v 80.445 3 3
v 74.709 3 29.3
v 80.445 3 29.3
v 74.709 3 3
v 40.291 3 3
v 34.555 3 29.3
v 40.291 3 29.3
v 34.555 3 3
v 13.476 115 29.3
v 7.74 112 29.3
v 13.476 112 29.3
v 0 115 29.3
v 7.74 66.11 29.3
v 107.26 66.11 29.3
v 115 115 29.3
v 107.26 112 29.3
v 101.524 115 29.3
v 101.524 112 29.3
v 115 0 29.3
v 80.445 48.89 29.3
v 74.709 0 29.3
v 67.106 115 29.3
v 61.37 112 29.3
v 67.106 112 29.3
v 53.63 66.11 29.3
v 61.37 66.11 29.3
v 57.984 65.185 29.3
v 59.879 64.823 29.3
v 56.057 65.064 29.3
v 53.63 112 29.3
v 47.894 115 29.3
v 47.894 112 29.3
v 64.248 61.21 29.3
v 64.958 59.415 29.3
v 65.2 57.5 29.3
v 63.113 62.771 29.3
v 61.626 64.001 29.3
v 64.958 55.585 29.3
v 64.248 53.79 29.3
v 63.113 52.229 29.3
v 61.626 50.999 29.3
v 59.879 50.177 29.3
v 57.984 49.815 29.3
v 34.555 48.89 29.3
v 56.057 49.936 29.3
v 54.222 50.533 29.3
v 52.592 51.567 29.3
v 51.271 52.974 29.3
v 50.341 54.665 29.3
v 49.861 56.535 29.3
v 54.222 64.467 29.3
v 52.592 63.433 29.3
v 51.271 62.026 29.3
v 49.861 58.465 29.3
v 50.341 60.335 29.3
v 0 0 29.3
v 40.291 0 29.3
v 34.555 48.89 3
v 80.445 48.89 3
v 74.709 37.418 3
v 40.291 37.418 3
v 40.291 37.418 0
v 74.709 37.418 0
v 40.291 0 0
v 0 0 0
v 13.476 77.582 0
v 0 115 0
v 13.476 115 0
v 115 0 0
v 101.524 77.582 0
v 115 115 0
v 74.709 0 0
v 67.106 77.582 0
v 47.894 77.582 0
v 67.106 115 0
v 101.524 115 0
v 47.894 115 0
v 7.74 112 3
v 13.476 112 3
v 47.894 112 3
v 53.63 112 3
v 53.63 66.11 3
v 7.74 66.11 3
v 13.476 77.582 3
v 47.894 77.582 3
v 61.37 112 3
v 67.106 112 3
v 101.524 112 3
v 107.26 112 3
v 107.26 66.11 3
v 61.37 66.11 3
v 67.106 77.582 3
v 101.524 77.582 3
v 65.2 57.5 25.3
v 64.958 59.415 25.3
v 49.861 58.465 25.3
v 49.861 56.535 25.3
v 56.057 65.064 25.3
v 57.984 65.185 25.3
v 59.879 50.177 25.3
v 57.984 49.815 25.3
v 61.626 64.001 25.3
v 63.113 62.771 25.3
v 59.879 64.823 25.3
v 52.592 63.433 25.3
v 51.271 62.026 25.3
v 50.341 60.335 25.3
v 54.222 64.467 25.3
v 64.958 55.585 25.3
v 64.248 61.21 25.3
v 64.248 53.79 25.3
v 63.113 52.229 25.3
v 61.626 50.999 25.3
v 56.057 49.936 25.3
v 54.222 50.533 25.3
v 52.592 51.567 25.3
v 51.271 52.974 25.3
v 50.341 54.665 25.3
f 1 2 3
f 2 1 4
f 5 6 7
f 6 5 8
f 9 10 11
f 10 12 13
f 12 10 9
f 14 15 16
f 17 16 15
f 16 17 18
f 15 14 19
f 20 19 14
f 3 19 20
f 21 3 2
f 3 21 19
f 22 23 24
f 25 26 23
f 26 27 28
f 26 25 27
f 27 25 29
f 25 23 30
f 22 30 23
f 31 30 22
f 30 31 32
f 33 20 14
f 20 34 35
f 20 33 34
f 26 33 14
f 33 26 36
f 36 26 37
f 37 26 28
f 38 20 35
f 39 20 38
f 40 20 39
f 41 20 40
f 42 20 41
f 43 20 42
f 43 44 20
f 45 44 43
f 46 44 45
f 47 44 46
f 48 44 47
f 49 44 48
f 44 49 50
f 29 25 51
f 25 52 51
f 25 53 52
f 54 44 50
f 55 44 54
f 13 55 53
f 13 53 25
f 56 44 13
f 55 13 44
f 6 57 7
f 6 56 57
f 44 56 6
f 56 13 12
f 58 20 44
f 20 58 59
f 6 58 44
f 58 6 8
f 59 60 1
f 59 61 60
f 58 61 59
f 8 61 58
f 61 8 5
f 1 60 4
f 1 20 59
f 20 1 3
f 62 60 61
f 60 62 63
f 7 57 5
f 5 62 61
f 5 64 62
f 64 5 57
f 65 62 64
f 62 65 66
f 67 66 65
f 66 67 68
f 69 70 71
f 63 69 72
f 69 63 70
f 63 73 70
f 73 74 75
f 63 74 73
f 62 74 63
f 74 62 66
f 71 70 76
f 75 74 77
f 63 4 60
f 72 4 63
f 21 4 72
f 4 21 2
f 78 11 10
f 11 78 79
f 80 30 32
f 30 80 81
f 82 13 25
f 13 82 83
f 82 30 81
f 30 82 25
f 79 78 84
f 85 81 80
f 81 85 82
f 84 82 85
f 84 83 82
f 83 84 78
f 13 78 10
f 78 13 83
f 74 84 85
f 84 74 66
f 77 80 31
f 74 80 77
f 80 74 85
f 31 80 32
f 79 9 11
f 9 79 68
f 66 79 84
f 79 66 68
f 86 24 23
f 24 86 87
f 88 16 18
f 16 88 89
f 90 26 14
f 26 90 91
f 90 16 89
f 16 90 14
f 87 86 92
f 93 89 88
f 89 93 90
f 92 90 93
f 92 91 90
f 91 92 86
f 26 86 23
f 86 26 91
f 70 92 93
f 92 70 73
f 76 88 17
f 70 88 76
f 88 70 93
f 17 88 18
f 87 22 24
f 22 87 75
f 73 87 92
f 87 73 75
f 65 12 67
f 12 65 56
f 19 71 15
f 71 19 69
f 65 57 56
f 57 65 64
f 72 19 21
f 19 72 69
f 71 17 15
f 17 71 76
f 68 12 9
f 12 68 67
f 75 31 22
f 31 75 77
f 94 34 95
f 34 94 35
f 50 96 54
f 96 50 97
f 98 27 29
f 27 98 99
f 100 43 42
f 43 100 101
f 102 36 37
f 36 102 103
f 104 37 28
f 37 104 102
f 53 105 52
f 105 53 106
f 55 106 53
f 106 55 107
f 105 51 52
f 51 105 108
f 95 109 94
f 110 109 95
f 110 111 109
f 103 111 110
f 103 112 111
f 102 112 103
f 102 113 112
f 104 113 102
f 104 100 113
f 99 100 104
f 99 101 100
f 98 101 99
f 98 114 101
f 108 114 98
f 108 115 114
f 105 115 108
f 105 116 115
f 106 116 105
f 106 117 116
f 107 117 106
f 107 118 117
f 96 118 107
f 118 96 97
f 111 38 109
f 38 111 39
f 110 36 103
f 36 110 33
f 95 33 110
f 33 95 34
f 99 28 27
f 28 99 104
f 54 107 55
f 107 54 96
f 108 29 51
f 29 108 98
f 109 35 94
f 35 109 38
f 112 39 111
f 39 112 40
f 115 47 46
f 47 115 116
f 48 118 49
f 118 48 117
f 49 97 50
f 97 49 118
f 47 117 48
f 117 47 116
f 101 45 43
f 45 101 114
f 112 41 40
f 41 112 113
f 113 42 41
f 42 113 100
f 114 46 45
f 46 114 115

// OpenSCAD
// file: SquarePileLib.scad
module LeftPile(wallThickness, totalHeight, singlePileHeight, singlePileWidth, singlePileLength, pileCount){
//    15.05 by 14.95 by 2.15
    pileHeight = (pileCount * singlePileHeight) + .5;
    openingSize = singlePileWidth * .75;
    blockerSize = (singlePileLength - openingSize) / 2;
    
    translate([wallThickness, wallThickness, totalHeight - pileHeight])
        cube([singlePileLength, singlePileWidth, pileHeight]);
    translate([-.00001, wallThickness + (blockerSize), 0])
        cube([wallThickness + openingSize, openingSize, totalHeight]);
}

module RightPile(wallThickness, totalHeight, singlePileHeight, singlePileWidth, singlePileLength, pileCount){
    translate([0, wallThickness + wallThickness + singlePileWidth, 0])
        rotate([0, 0, 180])
            LeftPile(wallThickness, totalHeight, singlePileHeight, singlePileWidth, singlePileLength, pileCount);
}

module BottomPile(wallThickness, totalHeight, singlePileHeight, singlePileWidth, singlePileLength, pileCount){
    translate([wallThickness + wallThickness + singlePileWidth, 0, 0])
        rotate([0, 0, 90])
            LeftPile(wallThickness, totalHeight, singlePileHeight, singlePileWidth, singlePileLength, pileCount);
}

module TopPile(wallThickness, totalHeight, singlePileHeight, singlePileWidth, singlePileLength, pileCount){
//    translate([
//        wallThickness + wallThickness + singlePileWidth,
//        wallThickness + wallThickness + singlePileWidth,
//        0])
        rotate([0, 0, 270])
            LeftPile(wallThickness, totalHeight, singlePileHeight, singlePileWidth, singlePileLength, pileCount);
}
// file: CoreLib.scad
function whiteSpaceBetweenBoxes(side, numberOfBoxes, boxLength) =
    (side - (numberOfBoxes * boxLength)) / (numberOfBoxes + 1);
    
function getOffsetForWhiteSpace(whiteSpaceBetweenBoxes, index, boxLength, singleBoxOffset) =
    ((index + 1) * whiteSpaceBetweenBoxes + boxLength * (index)) + singleBoxOffset;
// file: ColonistsStorageFacilityLib.scad
include<SquarePileLib.scad>
//25.82 by 32.82 by 2.15
singleStorageFacilityPileHeight = 2.15;
singleStorageFacilityPileWidth = 45.19 + .7;
singleStorageFacilityPileLength = 45.19 + .7;

module LeftStorageFacilityPile(wallThickness, totalHeight, storageFacilityPileCount){
    LeftPile(
        wallThickness,
        totalHeight,
        singleStorageFacilityPileHeight,
        singleStorageFacilityPileWidth,
        singleStorageFacilityPileLength,
        storageFacilityPileCount);
}

module RightStorageFacilityPile(wallThickness, totalHeight, storageFacilityPileCount){
    RightPile(
        wallThickness,
        totalHeight,
        singleStorageFacilityPileHeight,
        singleStorageFacilityPileWidth,
        singleStorageFacilityPileLength,
        storageFacilityPileCount);
}

module BottomStorageFacilityPile(wallThickness, totalHeight, storageFacilityPileCount){
    BottomPile(
        wallThickness,
        totalHeight,
        singleStorageFacilityPileHeight,
        singleStorageFacilityPileWidth,
        singleStorageFacilityPileLength,
        storageFacilityPileCount);
}

module TopStorageFacilityPile(wallThickness, totalHeight, storageFacilityPileCount){
    TopPile(
        wallThickness,
        totalHeight,
        singleStorageFacilityPileHeight,
        singleStorageFacilityPileWidth,
        singleStorageFacilityPileLength,
        storageFacilityPileCount);
}

function storageFacilityPileHeight(storageFacilityPileCount) =
    (storageFacilityPileCount * singleStorageFacilityPileHeight) + .5;
// main file
include<ColonistsStorageFacilityLib.scad>
include<CoreLib.scad>
magnetBaseInnerDiameter = 15.4;
magnetHeight = 4.0;
floorThickness = 3;
wallThickness = 3;
maxStorageFacilitysPerStack = 12;
height = storageFacilityPileHeight(maxStorageFacilitysPerStack) + floorThickness;
length = 115;
width = 115;
numberOfTopBoxes = 2;
topBoxStorageFacilitysPerStack = [12, 12];
numberOfBottomBoxes = 1;
bottomBoxStorageFacilitysPerStack = [12];
numberOfLeftBoxes = 0;
leftBoxStorageFacilitysPerStack = [];
numberOfRightBoxes = 0;
rightBoxStorageFacilitysPerStack = [];

difference() {

//    whitespace between boxes = (total length - (# of boxes * width of boxes)) / (# of boxes + 1)
//    position of box n = whitespace * n + 1 + width of box * (n)
    
    cube([length, width, height]);

    whiteSpaceBetweenTopBoxes = whiteSpaceBetweenBoxes(length, numberOfTopBoxes, singleStorageFacilityPileWidth);
    whiteSpaceBetweenBottomBoxes = whiteSpaceBetweenBoxes(length, numberOfBottomBoxes, singleStorageFacilityPileWidth);
    remainingWidth = width - (2 * singleStorageFacilityPileWidth);
    whiteSpaceBetweenLeftBoxes = whiteSpaceBetweenBoxes(remainingWidth, numberOfLeftBoxes, singleStorageFacilityPileWidth);
    whiteSpaceBetweenRightBoxes = whiteSpaceBetweenBoxes(remainingWidth, numberOfRightBoxes, singleStorageFacilityPileWidth);

    if (numberOfBottomBoxes != 0)
    {
        for(i=[0:numberOfBottomBoxes - 1]){
            translate([
                getOffsetForWhiteSpace(whiteSpaceBetweenBottomBoxes, i, singleStorageFacilityPileWidth, -wallThickness),
                0,
                0])
                BottomStorageFacilityPile(wallThickness, height, bottomBoxStorageFacilitysPerStack[i]);
        }
    }
    
    
    if (numberOfTopBoxes != 0)
    {
        for(i=[0:numberOfTopBoxes - 1]){
            translate([
                getOffsetForWhiteSpace(whiteSpaceBetweenTopBoxes, i, singleStorageFacilityPileWidth, -wallThickness),
                width,
                0])
                TopStorageFacilityPile(wallThickness, height, topBoxStorageFacilitysPerStack[i]);
        }
    }
    
    if (numberOfLeftBoxes != 0)
    {
        for(i=[0:numberOfLeftBoxes - 1]){
            translate([
                0,
                getOffsetForWhiteSpace(whiteSpaceBetweenLeftBoxes, i, singleStorageFacilityPileWidth, singleStorageFacilityPileWidth - wallThickness),
                0])
                LeftStorageFacilityPile(wallThickness, height, leftBoxStorageFacilitysPerStack[i]);
        }
    }
    
    if (numberOfRightBoxes != 0)
    {
        for(i=[0:numberOfRightBoxes - 1]){
            translate([
                length,
                getOffsetForWhiteSpace(whiteSpaceBetweenRightBoxes, i, singleStorageFacilityPileWidth, singleStorageFacilityPileWidth - wallThickness),
                0])
                RightStorageFacilityPile(wallThickness, height, rightBoxStorageFacilitysPerStack[i]);
        }
    }
    
    translate([length/2, width/2, height - magnetHeight])
        cylinder(magnetHeight, d=magnetBaseInnerDiameter);
}
